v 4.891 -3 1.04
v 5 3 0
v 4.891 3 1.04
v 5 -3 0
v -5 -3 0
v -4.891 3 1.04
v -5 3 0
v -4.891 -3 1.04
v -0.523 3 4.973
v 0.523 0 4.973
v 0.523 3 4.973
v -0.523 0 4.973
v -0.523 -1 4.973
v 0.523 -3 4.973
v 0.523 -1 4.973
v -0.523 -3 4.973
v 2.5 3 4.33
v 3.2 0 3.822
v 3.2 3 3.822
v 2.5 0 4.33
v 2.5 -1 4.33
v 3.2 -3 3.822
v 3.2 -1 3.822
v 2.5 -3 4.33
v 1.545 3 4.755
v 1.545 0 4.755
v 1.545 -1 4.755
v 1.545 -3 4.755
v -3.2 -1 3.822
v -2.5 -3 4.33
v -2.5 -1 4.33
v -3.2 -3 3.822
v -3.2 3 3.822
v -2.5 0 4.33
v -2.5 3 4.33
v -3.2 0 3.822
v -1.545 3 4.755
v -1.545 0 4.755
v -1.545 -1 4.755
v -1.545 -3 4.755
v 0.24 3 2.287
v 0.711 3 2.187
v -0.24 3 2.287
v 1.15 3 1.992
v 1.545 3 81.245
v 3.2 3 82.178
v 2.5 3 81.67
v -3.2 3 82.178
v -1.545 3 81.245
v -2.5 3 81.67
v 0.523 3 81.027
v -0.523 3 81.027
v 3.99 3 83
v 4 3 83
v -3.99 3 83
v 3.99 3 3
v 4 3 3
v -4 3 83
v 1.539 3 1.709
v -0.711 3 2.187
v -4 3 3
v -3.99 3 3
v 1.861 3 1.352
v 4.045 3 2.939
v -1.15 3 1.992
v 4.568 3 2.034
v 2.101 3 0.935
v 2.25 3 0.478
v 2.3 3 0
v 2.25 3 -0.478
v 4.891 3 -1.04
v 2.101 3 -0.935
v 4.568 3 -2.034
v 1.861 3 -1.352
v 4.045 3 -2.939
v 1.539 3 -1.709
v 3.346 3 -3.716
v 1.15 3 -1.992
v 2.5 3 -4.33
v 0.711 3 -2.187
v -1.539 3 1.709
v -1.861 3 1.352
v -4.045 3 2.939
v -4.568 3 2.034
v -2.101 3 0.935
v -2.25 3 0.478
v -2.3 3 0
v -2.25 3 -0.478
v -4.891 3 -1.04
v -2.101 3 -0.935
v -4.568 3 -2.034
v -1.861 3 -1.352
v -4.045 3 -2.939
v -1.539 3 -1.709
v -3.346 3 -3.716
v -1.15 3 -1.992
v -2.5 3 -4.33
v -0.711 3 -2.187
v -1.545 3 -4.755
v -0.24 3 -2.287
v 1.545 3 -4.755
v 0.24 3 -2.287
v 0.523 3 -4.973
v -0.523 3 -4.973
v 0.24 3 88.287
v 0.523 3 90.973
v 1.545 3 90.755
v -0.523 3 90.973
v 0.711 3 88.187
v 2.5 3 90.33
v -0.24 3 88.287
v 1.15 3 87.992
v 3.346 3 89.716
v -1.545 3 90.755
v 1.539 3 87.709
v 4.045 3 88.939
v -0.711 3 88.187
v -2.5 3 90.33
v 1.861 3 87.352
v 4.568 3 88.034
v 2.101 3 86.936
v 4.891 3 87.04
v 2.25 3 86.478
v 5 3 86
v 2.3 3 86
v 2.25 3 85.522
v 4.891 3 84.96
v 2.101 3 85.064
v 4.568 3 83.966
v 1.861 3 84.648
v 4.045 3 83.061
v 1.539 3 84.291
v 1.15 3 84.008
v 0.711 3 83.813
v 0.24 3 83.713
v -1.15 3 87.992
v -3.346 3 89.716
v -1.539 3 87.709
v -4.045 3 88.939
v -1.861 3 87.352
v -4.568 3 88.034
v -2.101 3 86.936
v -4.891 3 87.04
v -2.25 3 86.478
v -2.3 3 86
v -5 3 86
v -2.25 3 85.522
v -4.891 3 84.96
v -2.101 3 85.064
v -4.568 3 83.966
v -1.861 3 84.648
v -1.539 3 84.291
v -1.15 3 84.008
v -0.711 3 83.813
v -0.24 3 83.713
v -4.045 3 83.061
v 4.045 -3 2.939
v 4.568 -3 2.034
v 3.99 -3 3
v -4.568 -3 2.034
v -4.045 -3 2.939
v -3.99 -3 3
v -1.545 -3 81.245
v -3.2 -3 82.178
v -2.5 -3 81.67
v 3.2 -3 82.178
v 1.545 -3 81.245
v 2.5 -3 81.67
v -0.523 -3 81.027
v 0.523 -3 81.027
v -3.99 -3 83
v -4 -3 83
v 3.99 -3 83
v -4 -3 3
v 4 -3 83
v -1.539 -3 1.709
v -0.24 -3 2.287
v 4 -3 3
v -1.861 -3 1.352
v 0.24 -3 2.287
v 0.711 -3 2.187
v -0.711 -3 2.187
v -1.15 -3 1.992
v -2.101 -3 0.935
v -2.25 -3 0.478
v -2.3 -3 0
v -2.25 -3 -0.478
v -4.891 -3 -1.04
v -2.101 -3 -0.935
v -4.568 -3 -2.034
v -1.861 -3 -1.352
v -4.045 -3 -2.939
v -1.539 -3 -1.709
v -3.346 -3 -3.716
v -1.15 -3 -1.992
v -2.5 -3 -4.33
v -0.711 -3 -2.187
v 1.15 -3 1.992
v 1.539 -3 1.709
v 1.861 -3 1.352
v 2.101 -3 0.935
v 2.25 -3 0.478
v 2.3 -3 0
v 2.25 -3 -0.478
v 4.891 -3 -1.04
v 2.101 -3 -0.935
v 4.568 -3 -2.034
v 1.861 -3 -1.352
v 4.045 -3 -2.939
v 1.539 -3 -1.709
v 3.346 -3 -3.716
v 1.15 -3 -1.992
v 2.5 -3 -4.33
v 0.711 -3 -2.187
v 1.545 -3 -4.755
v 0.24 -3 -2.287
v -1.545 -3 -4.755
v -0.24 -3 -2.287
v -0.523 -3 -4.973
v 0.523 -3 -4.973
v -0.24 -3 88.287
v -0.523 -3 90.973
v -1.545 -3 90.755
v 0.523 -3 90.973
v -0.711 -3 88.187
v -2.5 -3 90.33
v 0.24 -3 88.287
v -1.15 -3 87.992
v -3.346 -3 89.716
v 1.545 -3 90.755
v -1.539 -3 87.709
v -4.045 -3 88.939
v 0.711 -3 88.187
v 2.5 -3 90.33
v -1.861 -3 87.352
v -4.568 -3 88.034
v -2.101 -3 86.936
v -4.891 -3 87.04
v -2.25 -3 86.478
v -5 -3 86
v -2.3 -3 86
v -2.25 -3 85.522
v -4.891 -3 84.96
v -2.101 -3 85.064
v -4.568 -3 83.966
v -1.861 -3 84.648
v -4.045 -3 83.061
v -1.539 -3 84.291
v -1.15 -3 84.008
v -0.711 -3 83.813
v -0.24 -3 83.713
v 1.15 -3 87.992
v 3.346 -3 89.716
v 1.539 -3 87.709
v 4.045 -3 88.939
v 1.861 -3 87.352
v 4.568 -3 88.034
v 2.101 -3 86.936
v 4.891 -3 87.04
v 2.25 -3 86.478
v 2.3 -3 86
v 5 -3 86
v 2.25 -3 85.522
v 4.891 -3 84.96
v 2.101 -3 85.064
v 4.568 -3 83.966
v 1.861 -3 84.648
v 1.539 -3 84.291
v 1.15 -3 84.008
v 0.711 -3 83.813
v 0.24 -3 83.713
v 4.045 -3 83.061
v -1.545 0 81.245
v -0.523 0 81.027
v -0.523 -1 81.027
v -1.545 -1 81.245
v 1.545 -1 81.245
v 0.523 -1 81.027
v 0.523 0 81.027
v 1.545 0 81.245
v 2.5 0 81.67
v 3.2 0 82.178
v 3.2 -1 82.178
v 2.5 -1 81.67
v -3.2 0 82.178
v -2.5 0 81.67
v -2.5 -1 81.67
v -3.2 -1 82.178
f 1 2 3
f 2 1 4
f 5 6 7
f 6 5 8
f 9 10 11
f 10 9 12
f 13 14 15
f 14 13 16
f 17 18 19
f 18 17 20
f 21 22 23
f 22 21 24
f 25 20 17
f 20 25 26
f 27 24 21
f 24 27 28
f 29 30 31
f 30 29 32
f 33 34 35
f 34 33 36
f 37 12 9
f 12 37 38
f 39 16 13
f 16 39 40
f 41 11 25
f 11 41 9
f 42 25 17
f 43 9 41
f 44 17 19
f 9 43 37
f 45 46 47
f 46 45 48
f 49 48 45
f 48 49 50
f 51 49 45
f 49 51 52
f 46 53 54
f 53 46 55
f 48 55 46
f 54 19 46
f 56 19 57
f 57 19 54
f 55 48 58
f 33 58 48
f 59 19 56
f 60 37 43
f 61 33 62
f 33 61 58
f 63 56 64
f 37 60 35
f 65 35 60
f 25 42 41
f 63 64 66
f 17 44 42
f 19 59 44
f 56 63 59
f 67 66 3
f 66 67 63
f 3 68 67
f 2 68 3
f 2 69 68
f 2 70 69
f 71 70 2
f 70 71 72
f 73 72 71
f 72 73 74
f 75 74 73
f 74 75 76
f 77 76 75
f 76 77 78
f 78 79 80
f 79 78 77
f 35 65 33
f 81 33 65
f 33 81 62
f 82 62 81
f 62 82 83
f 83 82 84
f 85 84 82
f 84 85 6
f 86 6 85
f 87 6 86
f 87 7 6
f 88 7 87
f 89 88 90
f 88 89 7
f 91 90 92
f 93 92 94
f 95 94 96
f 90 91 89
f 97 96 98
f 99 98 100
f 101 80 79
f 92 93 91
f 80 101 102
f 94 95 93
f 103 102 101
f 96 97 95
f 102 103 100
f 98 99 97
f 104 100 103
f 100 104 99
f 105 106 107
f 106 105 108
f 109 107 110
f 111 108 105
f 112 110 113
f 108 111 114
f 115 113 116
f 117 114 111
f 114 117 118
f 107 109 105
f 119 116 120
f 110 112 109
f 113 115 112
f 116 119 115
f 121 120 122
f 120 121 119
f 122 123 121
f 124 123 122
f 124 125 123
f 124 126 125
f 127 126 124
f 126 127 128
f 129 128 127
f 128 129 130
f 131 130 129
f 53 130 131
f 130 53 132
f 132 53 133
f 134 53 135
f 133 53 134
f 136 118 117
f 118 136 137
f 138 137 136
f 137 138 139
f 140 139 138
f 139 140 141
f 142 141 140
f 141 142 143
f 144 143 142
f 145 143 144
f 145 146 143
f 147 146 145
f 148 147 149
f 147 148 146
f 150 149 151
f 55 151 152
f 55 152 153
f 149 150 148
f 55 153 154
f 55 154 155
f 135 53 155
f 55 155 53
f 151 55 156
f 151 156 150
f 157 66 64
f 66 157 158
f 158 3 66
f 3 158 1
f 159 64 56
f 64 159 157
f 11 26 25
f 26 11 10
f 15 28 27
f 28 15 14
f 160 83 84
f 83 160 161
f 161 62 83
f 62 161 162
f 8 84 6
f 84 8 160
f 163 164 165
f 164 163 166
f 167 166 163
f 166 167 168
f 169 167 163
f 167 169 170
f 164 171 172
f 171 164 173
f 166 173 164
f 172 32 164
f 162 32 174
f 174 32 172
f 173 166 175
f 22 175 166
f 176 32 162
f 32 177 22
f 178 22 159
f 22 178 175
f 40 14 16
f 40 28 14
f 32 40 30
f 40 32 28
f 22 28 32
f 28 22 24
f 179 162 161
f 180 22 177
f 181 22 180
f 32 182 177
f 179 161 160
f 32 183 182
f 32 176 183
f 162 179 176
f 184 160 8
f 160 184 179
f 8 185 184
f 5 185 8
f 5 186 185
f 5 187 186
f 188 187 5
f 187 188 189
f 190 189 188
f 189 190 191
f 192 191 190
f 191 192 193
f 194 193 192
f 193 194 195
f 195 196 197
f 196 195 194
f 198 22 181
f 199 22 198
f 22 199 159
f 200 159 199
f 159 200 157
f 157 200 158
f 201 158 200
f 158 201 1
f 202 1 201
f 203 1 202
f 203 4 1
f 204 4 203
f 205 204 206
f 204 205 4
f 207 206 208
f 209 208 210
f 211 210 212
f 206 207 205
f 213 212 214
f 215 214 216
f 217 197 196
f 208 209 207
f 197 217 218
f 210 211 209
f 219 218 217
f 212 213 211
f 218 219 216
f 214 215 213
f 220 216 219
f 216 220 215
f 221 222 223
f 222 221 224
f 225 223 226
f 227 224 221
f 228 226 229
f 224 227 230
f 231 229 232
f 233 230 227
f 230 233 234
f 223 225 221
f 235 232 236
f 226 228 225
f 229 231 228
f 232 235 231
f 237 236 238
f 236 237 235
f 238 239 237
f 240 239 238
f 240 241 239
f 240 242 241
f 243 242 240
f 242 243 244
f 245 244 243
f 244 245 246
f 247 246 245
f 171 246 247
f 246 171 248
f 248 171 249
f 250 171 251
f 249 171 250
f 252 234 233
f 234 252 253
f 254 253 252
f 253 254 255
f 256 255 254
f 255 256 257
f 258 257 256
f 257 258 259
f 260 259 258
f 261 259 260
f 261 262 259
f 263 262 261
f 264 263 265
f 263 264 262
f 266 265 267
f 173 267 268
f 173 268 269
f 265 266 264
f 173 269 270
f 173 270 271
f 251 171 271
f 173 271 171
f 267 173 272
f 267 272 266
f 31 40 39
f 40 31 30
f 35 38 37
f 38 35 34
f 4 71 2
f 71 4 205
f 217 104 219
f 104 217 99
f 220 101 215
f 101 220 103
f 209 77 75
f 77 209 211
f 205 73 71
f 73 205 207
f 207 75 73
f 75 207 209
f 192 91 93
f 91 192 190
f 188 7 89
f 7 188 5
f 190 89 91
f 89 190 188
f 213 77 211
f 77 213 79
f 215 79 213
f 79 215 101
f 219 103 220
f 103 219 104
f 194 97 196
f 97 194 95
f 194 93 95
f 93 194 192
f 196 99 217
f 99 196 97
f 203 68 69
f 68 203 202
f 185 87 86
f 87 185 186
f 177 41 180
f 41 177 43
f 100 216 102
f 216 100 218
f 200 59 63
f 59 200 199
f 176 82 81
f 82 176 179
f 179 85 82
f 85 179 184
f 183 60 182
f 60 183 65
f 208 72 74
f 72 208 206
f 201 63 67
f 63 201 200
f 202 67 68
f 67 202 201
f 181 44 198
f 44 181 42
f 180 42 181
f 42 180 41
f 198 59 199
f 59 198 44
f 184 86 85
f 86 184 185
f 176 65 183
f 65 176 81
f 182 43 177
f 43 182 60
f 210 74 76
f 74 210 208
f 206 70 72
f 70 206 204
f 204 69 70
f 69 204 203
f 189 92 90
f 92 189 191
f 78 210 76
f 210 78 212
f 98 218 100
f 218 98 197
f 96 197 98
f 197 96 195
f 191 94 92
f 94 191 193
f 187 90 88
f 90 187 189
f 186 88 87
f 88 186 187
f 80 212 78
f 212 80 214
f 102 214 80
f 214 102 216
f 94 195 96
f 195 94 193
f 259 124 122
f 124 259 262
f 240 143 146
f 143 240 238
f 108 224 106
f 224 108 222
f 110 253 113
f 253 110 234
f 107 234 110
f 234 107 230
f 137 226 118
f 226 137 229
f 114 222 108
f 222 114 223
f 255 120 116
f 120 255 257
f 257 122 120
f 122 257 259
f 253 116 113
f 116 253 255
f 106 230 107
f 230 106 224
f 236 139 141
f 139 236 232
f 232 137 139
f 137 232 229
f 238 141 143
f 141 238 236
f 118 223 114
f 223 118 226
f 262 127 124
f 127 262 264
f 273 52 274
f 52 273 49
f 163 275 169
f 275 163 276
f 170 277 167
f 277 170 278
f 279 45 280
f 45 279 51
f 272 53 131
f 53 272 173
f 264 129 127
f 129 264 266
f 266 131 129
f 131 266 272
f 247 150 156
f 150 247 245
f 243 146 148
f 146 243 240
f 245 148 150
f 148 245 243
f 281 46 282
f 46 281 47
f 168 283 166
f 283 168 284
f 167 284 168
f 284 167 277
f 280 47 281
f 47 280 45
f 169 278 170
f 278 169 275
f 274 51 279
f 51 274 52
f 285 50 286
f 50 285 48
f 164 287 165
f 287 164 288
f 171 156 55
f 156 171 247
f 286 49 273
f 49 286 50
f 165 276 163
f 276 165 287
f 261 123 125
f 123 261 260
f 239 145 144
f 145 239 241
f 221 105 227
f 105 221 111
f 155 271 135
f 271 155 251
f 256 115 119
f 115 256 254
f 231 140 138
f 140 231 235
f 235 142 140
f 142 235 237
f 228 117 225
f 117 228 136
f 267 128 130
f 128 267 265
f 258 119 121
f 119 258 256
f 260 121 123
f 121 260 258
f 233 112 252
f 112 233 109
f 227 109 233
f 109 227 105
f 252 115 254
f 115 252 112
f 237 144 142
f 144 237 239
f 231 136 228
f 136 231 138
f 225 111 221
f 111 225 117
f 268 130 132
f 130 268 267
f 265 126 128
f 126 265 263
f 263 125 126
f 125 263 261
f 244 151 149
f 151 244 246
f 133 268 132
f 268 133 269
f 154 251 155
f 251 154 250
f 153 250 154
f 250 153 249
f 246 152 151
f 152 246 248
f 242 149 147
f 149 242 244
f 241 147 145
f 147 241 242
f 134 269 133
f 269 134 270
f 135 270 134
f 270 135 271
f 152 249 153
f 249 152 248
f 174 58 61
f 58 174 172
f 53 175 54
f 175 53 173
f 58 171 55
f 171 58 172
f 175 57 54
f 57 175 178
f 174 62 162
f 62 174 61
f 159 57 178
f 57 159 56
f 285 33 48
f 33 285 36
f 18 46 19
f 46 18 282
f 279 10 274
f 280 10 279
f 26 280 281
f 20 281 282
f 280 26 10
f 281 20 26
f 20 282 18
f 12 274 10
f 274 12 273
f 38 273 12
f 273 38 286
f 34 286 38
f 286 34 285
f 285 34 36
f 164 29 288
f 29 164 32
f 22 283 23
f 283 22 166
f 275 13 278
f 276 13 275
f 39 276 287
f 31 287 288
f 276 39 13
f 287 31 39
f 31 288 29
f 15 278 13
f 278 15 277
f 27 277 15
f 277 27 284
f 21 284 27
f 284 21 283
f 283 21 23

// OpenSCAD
translate([0,3,0])
rotate([90,0,0])
difference() {
	cylinder(6,5,5, $fn=30);
	cylinder(7,2.3,2.3, $fn=30);
}

translate([0,3,86])
rotate([90,0,0])
difference() {
	cylinder(6,5,5, $fn=30);
	cylinder(7,2.3,2.3, $fn=30);
}

difference(){
translate([-4,-3,3])
	scale([1,0.75,10])
		cube(8);

translate([-3.2,0,3])
	scale([0.8,0.75,10])
		cube(8);

translate([-3.2,-7,3])
	scale([0.8,0.75,10])
		cube(8);
}
